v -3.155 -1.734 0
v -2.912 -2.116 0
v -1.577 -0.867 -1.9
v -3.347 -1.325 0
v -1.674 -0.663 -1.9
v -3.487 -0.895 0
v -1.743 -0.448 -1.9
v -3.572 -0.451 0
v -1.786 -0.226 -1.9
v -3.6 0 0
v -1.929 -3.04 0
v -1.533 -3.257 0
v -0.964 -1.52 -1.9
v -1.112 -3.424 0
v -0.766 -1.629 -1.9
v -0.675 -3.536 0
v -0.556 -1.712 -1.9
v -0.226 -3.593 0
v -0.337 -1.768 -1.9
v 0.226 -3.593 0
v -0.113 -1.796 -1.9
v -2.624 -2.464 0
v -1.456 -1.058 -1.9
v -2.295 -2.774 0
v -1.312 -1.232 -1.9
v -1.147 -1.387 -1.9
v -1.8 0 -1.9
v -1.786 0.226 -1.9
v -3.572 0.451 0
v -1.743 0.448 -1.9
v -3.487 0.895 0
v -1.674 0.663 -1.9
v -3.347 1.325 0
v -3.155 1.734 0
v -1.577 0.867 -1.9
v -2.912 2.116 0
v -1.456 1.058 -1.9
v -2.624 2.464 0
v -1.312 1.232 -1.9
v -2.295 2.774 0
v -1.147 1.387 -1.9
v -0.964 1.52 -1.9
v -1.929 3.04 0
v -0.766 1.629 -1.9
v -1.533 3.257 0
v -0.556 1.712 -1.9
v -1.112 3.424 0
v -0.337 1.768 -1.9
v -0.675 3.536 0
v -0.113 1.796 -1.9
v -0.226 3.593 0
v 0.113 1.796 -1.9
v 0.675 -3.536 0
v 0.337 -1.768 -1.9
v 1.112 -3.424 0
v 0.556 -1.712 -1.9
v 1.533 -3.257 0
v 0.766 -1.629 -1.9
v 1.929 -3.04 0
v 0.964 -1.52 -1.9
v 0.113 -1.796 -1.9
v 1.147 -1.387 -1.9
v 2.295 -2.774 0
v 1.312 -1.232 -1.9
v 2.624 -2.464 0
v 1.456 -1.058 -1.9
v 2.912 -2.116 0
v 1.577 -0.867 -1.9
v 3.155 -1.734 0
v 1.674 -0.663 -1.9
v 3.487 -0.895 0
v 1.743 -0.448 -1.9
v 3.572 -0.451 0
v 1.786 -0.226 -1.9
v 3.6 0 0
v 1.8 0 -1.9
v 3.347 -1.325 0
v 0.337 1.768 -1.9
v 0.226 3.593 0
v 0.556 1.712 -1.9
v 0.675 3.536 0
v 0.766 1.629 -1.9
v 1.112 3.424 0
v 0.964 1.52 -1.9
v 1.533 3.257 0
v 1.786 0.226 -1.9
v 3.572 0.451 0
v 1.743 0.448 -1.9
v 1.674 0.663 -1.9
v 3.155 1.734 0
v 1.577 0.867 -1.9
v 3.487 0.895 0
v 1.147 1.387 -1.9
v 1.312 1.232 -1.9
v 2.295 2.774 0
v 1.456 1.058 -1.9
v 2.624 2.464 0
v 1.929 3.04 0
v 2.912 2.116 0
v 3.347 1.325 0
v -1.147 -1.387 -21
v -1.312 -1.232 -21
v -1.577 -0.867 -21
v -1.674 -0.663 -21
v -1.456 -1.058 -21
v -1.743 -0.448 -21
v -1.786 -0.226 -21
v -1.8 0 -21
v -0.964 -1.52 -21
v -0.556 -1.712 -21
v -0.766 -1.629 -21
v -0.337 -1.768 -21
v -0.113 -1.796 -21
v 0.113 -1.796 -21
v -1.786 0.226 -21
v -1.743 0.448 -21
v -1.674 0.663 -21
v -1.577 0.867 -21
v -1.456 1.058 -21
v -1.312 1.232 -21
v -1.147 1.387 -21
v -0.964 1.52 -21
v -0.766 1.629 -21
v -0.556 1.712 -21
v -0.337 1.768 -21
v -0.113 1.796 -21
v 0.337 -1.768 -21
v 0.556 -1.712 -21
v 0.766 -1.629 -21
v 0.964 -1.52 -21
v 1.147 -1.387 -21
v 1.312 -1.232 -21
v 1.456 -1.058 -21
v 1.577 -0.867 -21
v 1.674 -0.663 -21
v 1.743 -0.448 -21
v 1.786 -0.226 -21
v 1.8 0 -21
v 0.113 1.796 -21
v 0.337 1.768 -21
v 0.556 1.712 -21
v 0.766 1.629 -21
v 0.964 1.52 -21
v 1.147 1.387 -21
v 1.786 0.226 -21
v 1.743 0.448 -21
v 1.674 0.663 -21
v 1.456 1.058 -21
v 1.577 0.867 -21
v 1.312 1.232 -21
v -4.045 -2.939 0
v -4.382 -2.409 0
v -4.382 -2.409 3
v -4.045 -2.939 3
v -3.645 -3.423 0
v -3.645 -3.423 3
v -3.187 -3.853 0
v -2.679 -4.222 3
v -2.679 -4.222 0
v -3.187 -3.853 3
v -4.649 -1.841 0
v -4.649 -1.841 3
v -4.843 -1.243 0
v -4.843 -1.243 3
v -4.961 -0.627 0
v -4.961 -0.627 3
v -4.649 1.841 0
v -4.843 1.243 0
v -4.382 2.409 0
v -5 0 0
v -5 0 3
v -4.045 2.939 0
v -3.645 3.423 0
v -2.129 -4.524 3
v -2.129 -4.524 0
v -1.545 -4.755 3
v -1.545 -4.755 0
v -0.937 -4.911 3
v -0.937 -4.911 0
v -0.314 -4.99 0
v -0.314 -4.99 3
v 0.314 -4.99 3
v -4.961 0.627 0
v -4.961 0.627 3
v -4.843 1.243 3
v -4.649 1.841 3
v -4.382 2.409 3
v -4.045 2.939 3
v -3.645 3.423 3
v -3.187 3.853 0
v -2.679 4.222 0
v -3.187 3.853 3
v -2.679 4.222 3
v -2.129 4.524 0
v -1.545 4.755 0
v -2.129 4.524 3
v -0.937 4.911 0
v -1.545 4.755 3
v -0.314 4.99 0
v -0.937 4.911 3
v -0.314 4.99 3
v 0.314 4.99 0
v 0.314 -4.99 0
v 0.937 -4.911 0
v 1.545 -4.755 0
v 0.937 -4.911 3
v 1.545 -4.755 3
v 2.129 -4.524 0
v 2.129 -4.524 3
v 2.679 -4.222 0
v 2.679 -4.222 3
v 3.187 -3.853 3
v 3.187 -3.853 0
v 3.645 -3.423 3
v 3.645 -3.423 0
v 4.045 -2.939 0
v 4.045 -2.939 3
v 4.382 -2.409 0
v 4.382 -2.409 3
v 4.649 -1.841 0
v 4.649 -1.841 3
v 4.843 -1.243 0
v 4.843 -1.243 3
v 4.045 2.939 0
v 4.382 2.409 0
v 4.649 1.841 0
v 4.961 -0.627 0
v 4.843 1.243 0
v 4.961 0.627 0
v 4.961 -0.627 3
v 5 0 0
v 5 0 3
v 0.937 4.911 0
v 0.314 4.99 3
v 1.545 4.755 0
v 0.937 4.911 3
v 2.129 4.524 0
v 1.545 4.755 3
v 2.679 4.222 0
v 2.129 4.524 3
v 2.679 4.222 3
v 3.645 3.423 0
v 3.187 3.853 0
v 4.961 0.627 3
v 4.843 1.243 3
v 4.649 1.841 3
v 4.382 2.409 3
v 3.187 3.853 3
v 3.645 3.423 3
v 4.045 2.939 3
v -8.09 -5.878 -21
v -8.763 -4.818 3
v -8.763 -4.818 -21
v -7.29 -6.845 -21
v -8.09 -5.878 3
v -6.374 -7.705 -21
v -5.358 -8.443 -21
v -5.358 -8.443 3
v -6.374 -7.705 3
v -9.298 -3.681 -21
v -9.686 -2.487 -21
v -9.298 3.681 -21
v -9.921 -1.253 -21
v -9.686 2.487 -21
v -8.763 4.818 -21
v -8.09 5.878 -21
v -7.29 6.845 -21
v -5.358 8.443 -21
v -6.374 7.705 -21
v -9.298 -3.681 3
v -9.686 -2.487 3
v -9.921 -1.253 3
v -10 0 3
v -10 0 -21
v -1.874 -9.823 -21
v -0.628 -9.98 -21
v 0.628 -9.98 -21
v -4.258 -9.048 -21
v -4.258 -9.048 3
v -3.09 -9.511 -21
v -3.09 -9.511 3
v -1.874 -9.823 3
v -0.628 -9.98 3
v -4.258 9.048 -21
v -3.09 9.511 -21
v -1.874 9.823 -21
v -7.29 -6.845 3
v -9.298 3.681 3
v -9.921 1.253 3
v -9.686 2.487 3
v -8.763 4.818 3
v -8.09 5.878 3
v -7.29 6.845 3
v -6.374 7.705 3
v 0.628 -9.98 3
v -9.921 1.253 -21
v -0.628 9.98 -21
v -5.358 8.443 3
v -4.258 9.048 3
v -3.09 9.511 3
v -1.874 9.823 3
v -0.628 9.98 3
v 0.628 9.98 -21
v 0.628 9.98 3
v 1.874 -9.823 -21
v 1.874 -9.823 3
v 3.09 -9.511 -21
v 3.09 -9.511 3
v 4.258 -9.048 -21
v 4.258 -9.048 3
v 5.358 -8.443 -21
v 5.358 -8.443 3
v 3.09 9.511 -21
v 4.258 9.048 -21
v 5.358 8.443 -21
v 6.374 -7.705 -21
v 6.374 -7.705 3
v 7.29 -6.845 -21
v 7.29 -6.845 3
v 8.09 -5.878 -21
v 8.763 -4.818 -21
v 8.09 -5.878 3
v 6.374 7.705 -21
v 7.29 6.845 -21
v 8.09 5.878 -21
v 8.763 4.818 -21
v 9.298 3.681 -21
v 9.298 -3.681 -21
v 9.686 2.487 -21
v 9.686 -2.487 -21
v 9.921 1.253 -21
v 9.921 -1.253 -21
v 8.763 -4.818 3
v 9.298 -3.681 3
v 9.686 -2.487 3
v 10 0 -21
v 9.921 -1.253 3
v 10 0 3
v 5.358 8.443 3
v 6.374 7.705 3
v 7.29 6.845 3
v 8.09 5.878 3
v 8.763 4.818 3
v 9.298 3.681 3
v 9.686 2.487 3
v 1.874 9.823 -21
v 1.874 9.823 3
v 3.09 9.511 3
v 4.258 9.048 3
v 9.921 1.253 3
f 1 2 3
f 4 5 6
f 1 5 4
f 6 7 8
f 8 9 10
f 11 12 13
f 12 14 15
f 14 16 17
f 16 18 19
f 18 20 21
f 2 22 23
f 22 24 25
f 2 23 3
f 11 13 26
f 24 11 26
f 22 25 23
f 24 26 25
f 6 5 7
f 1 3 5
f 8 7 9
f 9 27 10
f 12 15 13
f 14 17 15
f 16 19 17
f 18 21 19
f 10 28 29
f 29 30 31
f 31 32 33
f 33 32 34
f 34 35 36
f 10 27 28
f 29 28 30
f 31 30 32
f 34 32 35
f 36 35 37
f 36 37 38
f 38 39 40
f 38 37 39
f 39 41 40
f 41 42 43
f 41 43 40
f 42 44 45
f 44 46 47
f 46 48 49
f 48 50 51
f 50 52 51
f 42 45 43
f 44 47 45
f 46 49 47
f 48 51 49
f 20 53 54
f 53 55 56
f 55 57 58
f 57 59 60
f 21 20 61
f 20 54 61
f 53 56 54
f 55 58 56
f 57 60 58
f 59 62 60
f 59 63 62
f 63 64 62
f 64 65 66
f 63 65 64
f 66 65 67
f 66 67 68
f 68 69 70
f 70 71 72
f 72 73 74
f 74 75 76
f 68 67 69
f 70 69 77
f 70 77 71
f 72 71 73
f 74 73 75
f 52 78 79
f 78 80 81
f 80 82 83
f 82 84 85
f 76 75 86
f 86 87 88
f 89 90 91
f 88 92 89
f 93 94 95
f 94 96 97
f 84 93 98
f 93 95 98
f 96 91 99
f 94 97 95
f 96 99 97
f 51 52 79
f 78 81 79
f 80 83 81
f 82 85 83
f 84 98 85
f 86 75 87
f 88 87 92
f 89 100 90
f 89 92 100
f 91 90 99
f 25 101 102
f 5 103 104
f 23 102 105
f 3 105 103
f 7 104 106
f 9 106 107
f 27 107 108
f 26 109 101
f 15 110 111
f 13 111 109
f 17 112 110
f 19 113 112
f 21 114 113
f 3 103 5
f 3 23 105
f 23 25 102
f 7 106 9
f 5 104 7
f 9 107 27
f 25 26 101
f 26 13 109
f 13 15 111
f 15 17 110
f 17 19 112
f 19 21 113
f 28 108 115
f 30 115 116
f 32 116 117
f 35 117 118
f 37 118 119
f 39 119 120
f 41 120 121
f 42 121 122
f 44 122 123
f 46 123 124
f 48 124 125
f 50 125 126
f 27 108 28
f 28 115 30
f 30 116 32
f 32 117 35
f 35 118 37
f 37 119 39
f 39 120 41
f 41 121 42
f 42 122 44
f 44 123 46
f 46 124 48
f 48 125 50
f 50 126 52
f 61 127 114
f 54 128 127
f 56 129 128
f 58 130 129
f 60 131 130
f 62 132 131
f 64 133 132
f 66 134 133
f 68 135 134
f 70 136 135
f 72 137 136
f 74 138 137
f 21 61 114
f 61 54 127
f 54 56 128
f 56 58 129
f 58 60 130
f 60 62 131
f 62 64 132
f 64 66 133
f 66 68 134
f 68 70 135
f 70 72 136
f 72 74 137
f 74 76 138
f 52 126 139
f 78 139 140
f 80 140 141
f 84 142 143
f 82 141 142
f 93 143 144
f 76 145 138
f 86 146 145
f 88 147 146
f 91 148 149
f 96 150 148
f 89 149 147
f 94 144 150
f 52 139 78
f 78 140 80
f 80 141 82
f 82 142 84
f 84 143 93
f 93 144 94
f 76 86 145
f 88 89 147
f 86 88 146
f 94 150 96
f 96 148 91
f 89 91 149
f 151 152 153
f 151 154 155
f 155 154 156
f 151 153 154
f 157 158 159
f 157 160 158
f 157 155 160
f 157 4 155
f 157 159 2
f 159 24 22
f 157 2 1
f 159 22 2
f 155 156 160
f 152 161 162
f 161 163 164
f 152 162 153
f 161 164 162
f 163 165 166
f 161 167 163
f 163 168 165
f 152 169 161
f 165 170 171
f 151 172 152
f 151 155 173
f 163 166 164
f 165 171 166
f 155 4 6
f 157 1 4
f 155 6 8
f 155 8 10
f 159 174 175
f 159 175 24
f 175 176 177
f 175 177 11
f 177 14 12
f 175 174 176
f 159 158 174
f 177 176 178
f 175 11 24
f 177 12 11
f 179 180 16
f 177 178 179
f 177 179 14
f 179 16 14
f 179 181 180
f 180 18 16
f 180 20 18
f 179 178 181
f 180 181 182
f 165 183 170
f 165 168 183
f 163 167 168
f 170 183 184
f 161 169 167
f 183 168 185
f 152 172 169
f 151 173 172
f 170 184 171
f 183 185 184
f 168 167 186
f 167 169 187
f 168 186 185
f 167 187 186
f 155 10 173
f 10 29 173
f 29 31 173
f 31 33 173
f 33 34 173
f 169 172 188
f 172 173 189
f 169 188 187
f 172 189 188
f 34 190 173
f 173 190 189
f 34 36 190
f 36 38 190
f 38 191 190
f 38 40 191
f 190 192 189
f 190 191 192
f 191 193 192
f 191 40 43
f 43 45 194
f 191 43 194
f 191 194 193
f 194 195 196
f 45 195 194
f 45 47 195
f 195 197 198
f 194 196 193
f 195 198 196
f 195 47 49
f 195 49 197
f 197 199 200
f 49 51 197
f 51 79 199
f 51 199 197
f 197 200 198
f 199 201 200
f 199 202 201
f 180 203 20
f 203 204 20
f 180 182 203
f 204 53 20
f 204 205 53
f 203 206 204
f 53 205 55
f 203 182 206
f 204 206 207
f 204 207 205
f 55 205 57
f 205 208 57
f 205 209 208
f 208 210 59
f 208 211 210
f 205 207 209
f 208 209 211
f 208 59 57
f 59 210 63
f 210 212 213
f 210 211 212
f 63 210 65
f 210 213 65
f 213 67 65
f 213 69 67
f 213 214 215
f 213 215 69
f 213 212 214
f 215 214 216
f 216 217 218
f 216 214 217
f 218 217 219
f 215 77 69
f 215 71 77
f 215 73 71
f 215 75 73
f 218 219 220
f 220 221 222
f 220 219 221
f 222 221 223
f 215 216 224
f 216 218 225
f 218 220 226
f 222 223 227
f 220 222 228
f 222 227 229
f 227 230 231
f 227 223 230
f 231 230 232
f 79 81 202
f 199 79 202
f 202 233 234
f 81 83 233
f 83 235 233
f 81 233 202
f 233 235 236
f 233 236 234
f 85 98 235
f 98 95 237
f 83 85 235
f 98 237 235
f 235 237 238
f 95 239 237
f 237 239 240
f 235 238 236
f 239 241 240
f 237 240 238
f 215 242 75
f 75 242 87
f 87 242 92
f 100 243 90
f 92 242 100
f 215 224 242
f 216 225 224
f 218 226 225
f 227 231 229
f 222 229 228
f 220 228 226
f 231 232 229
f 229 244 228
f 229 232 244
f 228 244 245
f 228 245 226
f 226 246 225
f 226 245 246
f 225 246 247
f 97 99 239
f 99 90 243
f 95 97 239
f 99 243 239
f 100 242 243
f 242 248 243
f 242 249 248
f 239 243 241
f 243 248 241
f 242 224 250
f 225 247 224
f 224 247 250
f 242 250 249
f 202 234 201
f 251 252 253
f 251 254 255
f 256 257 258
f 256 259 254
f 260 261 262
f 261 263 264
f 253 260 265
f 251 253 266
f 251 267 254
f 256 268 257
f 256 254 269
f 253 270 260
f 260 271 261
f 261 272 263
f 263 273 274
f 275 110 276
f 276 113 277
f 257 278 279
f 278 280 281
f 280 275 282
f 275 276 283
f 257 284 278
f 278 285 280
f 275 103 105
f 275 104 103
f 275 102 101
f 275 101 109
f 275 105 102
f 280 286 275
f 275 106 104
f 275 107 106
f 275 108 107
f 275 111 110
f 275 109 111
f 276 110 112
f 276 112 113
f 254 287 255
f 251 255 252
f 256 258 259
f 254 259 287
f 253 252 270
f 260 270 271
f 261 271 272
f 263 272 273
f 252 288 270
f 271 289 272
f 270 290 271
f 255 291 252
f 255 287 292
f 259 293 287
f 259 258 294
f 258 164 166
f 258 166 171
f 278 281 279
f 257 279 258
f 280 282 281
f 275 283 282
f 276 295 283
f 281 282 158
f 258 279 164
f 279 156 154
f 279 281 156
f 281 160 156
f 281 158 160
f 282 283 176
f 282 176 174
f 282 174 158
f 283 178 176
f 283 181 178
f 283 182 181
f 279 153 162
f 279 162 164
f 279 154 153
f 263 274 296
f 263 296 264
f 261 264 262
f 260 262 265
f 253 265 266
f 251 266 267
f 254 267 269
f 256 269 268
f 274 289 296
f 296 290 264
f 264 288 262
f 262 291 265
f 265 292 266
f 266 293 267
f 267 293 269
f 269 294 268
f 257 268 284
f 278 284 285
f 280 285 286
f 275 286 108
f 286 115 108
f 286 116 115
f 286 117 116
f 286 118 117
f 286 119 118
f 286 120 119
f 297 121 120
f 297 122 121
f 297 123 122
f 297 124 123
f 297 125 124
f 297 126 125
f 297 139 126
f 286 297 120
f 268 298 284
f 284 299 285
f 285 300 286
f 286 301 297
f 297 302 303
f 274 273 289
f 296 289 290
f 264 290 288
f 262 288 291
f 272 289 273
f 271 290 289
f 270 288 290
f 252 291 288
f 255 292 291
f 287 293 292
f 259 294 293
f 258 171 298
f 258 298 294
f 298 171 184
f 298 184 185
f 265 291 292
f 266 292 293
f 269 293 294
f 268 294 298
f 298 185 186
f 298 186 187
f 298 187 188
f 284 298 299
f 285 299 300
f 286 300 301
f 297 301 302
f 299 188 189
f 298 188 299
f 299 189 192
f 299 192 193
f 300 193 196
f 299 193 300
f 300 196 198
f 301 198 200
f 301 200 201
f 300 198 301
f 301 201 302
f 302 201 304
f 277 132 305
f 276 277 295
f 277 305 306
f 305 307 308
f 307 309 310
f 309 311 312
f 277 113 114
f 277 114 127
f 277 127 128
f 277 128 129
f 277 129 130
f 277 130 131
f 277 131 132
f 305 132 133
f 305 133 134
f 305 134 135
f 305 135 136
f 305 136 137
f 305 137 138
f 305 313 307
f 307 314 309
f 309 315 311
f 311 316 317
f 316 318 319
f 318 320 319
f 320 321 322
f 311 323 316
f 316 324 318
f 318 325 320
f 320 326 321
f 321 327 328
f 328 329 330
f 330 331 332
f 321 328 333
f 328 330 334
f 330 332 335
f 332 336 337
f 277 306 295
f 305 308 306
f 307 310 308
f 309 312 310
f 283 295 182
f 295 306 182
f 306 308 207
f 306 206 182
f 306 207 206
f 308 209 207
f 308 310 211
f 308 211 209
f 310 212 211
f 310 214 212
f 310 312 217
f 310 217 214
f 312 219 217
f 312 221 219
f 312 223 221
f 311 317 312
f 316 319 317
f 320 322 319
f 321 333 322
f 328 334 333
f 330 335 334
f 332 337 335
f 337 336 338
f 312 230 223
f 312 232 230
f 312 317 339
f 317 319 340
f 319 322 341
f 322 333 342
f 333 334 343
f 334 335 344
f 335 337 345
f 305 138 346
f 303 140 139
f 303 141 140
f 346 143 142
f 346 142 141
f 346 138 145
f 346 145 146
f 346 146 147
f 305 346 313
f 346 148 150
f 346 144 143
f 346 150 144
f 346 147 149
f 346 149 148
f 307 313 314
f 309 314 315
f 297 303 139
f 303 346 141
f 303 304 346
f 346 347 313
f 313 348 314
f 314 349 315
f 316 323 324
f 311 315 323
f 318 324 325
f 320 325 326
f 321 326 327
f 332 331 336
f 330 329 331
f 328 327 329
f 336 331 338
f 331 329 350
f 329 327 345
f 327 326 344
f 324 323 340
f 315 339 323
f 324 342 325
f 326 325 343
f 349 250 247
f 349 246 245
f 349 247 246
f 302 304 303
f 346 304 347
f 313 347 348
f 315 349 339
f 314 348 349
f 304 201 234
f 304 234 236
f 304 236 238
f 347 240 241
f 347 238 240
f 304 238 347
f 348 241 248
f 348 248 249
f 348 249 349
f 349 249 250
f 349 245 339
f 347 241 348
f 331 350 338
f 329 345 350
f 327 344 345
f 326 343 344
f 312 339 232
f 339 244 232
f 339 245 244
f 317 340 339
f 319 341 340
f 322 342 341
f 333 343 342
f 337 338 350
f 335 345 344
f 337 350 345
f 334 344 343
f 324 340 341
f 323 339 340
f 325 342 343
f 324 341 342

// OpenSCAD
$fn = 50;

difference() {
	union() {
		translate(v = [0, 0, -21.0]) {
			cylinder(h = 24, r = 10.0);
		}
	}
	union() {
		translate(v = [0, 0, 0]) {
			rotate(a = [0, 0, 0]) {
				difference() {
					union() {
						translate(v = [0, 0, -24.0]) {
							cylinder(h = 24, r = 1.5);
						}
						translate(v = [0, 0, -1.9]) {
							cylinder(h = 1.9, r1 = 1.8, r2 = 3.6);
						}
						translate(v = [0, 0, -24.0]) {
							cylinder(h = 24, r = 1.8);
						}
						translate(v = [0, 0, -24.0]) {
							cylinder(h = 24, r = 1.5);
						}
					}
					union();
				}
			}
		}
		#cylinder(h = 3, r = 5.0);
	}
}
